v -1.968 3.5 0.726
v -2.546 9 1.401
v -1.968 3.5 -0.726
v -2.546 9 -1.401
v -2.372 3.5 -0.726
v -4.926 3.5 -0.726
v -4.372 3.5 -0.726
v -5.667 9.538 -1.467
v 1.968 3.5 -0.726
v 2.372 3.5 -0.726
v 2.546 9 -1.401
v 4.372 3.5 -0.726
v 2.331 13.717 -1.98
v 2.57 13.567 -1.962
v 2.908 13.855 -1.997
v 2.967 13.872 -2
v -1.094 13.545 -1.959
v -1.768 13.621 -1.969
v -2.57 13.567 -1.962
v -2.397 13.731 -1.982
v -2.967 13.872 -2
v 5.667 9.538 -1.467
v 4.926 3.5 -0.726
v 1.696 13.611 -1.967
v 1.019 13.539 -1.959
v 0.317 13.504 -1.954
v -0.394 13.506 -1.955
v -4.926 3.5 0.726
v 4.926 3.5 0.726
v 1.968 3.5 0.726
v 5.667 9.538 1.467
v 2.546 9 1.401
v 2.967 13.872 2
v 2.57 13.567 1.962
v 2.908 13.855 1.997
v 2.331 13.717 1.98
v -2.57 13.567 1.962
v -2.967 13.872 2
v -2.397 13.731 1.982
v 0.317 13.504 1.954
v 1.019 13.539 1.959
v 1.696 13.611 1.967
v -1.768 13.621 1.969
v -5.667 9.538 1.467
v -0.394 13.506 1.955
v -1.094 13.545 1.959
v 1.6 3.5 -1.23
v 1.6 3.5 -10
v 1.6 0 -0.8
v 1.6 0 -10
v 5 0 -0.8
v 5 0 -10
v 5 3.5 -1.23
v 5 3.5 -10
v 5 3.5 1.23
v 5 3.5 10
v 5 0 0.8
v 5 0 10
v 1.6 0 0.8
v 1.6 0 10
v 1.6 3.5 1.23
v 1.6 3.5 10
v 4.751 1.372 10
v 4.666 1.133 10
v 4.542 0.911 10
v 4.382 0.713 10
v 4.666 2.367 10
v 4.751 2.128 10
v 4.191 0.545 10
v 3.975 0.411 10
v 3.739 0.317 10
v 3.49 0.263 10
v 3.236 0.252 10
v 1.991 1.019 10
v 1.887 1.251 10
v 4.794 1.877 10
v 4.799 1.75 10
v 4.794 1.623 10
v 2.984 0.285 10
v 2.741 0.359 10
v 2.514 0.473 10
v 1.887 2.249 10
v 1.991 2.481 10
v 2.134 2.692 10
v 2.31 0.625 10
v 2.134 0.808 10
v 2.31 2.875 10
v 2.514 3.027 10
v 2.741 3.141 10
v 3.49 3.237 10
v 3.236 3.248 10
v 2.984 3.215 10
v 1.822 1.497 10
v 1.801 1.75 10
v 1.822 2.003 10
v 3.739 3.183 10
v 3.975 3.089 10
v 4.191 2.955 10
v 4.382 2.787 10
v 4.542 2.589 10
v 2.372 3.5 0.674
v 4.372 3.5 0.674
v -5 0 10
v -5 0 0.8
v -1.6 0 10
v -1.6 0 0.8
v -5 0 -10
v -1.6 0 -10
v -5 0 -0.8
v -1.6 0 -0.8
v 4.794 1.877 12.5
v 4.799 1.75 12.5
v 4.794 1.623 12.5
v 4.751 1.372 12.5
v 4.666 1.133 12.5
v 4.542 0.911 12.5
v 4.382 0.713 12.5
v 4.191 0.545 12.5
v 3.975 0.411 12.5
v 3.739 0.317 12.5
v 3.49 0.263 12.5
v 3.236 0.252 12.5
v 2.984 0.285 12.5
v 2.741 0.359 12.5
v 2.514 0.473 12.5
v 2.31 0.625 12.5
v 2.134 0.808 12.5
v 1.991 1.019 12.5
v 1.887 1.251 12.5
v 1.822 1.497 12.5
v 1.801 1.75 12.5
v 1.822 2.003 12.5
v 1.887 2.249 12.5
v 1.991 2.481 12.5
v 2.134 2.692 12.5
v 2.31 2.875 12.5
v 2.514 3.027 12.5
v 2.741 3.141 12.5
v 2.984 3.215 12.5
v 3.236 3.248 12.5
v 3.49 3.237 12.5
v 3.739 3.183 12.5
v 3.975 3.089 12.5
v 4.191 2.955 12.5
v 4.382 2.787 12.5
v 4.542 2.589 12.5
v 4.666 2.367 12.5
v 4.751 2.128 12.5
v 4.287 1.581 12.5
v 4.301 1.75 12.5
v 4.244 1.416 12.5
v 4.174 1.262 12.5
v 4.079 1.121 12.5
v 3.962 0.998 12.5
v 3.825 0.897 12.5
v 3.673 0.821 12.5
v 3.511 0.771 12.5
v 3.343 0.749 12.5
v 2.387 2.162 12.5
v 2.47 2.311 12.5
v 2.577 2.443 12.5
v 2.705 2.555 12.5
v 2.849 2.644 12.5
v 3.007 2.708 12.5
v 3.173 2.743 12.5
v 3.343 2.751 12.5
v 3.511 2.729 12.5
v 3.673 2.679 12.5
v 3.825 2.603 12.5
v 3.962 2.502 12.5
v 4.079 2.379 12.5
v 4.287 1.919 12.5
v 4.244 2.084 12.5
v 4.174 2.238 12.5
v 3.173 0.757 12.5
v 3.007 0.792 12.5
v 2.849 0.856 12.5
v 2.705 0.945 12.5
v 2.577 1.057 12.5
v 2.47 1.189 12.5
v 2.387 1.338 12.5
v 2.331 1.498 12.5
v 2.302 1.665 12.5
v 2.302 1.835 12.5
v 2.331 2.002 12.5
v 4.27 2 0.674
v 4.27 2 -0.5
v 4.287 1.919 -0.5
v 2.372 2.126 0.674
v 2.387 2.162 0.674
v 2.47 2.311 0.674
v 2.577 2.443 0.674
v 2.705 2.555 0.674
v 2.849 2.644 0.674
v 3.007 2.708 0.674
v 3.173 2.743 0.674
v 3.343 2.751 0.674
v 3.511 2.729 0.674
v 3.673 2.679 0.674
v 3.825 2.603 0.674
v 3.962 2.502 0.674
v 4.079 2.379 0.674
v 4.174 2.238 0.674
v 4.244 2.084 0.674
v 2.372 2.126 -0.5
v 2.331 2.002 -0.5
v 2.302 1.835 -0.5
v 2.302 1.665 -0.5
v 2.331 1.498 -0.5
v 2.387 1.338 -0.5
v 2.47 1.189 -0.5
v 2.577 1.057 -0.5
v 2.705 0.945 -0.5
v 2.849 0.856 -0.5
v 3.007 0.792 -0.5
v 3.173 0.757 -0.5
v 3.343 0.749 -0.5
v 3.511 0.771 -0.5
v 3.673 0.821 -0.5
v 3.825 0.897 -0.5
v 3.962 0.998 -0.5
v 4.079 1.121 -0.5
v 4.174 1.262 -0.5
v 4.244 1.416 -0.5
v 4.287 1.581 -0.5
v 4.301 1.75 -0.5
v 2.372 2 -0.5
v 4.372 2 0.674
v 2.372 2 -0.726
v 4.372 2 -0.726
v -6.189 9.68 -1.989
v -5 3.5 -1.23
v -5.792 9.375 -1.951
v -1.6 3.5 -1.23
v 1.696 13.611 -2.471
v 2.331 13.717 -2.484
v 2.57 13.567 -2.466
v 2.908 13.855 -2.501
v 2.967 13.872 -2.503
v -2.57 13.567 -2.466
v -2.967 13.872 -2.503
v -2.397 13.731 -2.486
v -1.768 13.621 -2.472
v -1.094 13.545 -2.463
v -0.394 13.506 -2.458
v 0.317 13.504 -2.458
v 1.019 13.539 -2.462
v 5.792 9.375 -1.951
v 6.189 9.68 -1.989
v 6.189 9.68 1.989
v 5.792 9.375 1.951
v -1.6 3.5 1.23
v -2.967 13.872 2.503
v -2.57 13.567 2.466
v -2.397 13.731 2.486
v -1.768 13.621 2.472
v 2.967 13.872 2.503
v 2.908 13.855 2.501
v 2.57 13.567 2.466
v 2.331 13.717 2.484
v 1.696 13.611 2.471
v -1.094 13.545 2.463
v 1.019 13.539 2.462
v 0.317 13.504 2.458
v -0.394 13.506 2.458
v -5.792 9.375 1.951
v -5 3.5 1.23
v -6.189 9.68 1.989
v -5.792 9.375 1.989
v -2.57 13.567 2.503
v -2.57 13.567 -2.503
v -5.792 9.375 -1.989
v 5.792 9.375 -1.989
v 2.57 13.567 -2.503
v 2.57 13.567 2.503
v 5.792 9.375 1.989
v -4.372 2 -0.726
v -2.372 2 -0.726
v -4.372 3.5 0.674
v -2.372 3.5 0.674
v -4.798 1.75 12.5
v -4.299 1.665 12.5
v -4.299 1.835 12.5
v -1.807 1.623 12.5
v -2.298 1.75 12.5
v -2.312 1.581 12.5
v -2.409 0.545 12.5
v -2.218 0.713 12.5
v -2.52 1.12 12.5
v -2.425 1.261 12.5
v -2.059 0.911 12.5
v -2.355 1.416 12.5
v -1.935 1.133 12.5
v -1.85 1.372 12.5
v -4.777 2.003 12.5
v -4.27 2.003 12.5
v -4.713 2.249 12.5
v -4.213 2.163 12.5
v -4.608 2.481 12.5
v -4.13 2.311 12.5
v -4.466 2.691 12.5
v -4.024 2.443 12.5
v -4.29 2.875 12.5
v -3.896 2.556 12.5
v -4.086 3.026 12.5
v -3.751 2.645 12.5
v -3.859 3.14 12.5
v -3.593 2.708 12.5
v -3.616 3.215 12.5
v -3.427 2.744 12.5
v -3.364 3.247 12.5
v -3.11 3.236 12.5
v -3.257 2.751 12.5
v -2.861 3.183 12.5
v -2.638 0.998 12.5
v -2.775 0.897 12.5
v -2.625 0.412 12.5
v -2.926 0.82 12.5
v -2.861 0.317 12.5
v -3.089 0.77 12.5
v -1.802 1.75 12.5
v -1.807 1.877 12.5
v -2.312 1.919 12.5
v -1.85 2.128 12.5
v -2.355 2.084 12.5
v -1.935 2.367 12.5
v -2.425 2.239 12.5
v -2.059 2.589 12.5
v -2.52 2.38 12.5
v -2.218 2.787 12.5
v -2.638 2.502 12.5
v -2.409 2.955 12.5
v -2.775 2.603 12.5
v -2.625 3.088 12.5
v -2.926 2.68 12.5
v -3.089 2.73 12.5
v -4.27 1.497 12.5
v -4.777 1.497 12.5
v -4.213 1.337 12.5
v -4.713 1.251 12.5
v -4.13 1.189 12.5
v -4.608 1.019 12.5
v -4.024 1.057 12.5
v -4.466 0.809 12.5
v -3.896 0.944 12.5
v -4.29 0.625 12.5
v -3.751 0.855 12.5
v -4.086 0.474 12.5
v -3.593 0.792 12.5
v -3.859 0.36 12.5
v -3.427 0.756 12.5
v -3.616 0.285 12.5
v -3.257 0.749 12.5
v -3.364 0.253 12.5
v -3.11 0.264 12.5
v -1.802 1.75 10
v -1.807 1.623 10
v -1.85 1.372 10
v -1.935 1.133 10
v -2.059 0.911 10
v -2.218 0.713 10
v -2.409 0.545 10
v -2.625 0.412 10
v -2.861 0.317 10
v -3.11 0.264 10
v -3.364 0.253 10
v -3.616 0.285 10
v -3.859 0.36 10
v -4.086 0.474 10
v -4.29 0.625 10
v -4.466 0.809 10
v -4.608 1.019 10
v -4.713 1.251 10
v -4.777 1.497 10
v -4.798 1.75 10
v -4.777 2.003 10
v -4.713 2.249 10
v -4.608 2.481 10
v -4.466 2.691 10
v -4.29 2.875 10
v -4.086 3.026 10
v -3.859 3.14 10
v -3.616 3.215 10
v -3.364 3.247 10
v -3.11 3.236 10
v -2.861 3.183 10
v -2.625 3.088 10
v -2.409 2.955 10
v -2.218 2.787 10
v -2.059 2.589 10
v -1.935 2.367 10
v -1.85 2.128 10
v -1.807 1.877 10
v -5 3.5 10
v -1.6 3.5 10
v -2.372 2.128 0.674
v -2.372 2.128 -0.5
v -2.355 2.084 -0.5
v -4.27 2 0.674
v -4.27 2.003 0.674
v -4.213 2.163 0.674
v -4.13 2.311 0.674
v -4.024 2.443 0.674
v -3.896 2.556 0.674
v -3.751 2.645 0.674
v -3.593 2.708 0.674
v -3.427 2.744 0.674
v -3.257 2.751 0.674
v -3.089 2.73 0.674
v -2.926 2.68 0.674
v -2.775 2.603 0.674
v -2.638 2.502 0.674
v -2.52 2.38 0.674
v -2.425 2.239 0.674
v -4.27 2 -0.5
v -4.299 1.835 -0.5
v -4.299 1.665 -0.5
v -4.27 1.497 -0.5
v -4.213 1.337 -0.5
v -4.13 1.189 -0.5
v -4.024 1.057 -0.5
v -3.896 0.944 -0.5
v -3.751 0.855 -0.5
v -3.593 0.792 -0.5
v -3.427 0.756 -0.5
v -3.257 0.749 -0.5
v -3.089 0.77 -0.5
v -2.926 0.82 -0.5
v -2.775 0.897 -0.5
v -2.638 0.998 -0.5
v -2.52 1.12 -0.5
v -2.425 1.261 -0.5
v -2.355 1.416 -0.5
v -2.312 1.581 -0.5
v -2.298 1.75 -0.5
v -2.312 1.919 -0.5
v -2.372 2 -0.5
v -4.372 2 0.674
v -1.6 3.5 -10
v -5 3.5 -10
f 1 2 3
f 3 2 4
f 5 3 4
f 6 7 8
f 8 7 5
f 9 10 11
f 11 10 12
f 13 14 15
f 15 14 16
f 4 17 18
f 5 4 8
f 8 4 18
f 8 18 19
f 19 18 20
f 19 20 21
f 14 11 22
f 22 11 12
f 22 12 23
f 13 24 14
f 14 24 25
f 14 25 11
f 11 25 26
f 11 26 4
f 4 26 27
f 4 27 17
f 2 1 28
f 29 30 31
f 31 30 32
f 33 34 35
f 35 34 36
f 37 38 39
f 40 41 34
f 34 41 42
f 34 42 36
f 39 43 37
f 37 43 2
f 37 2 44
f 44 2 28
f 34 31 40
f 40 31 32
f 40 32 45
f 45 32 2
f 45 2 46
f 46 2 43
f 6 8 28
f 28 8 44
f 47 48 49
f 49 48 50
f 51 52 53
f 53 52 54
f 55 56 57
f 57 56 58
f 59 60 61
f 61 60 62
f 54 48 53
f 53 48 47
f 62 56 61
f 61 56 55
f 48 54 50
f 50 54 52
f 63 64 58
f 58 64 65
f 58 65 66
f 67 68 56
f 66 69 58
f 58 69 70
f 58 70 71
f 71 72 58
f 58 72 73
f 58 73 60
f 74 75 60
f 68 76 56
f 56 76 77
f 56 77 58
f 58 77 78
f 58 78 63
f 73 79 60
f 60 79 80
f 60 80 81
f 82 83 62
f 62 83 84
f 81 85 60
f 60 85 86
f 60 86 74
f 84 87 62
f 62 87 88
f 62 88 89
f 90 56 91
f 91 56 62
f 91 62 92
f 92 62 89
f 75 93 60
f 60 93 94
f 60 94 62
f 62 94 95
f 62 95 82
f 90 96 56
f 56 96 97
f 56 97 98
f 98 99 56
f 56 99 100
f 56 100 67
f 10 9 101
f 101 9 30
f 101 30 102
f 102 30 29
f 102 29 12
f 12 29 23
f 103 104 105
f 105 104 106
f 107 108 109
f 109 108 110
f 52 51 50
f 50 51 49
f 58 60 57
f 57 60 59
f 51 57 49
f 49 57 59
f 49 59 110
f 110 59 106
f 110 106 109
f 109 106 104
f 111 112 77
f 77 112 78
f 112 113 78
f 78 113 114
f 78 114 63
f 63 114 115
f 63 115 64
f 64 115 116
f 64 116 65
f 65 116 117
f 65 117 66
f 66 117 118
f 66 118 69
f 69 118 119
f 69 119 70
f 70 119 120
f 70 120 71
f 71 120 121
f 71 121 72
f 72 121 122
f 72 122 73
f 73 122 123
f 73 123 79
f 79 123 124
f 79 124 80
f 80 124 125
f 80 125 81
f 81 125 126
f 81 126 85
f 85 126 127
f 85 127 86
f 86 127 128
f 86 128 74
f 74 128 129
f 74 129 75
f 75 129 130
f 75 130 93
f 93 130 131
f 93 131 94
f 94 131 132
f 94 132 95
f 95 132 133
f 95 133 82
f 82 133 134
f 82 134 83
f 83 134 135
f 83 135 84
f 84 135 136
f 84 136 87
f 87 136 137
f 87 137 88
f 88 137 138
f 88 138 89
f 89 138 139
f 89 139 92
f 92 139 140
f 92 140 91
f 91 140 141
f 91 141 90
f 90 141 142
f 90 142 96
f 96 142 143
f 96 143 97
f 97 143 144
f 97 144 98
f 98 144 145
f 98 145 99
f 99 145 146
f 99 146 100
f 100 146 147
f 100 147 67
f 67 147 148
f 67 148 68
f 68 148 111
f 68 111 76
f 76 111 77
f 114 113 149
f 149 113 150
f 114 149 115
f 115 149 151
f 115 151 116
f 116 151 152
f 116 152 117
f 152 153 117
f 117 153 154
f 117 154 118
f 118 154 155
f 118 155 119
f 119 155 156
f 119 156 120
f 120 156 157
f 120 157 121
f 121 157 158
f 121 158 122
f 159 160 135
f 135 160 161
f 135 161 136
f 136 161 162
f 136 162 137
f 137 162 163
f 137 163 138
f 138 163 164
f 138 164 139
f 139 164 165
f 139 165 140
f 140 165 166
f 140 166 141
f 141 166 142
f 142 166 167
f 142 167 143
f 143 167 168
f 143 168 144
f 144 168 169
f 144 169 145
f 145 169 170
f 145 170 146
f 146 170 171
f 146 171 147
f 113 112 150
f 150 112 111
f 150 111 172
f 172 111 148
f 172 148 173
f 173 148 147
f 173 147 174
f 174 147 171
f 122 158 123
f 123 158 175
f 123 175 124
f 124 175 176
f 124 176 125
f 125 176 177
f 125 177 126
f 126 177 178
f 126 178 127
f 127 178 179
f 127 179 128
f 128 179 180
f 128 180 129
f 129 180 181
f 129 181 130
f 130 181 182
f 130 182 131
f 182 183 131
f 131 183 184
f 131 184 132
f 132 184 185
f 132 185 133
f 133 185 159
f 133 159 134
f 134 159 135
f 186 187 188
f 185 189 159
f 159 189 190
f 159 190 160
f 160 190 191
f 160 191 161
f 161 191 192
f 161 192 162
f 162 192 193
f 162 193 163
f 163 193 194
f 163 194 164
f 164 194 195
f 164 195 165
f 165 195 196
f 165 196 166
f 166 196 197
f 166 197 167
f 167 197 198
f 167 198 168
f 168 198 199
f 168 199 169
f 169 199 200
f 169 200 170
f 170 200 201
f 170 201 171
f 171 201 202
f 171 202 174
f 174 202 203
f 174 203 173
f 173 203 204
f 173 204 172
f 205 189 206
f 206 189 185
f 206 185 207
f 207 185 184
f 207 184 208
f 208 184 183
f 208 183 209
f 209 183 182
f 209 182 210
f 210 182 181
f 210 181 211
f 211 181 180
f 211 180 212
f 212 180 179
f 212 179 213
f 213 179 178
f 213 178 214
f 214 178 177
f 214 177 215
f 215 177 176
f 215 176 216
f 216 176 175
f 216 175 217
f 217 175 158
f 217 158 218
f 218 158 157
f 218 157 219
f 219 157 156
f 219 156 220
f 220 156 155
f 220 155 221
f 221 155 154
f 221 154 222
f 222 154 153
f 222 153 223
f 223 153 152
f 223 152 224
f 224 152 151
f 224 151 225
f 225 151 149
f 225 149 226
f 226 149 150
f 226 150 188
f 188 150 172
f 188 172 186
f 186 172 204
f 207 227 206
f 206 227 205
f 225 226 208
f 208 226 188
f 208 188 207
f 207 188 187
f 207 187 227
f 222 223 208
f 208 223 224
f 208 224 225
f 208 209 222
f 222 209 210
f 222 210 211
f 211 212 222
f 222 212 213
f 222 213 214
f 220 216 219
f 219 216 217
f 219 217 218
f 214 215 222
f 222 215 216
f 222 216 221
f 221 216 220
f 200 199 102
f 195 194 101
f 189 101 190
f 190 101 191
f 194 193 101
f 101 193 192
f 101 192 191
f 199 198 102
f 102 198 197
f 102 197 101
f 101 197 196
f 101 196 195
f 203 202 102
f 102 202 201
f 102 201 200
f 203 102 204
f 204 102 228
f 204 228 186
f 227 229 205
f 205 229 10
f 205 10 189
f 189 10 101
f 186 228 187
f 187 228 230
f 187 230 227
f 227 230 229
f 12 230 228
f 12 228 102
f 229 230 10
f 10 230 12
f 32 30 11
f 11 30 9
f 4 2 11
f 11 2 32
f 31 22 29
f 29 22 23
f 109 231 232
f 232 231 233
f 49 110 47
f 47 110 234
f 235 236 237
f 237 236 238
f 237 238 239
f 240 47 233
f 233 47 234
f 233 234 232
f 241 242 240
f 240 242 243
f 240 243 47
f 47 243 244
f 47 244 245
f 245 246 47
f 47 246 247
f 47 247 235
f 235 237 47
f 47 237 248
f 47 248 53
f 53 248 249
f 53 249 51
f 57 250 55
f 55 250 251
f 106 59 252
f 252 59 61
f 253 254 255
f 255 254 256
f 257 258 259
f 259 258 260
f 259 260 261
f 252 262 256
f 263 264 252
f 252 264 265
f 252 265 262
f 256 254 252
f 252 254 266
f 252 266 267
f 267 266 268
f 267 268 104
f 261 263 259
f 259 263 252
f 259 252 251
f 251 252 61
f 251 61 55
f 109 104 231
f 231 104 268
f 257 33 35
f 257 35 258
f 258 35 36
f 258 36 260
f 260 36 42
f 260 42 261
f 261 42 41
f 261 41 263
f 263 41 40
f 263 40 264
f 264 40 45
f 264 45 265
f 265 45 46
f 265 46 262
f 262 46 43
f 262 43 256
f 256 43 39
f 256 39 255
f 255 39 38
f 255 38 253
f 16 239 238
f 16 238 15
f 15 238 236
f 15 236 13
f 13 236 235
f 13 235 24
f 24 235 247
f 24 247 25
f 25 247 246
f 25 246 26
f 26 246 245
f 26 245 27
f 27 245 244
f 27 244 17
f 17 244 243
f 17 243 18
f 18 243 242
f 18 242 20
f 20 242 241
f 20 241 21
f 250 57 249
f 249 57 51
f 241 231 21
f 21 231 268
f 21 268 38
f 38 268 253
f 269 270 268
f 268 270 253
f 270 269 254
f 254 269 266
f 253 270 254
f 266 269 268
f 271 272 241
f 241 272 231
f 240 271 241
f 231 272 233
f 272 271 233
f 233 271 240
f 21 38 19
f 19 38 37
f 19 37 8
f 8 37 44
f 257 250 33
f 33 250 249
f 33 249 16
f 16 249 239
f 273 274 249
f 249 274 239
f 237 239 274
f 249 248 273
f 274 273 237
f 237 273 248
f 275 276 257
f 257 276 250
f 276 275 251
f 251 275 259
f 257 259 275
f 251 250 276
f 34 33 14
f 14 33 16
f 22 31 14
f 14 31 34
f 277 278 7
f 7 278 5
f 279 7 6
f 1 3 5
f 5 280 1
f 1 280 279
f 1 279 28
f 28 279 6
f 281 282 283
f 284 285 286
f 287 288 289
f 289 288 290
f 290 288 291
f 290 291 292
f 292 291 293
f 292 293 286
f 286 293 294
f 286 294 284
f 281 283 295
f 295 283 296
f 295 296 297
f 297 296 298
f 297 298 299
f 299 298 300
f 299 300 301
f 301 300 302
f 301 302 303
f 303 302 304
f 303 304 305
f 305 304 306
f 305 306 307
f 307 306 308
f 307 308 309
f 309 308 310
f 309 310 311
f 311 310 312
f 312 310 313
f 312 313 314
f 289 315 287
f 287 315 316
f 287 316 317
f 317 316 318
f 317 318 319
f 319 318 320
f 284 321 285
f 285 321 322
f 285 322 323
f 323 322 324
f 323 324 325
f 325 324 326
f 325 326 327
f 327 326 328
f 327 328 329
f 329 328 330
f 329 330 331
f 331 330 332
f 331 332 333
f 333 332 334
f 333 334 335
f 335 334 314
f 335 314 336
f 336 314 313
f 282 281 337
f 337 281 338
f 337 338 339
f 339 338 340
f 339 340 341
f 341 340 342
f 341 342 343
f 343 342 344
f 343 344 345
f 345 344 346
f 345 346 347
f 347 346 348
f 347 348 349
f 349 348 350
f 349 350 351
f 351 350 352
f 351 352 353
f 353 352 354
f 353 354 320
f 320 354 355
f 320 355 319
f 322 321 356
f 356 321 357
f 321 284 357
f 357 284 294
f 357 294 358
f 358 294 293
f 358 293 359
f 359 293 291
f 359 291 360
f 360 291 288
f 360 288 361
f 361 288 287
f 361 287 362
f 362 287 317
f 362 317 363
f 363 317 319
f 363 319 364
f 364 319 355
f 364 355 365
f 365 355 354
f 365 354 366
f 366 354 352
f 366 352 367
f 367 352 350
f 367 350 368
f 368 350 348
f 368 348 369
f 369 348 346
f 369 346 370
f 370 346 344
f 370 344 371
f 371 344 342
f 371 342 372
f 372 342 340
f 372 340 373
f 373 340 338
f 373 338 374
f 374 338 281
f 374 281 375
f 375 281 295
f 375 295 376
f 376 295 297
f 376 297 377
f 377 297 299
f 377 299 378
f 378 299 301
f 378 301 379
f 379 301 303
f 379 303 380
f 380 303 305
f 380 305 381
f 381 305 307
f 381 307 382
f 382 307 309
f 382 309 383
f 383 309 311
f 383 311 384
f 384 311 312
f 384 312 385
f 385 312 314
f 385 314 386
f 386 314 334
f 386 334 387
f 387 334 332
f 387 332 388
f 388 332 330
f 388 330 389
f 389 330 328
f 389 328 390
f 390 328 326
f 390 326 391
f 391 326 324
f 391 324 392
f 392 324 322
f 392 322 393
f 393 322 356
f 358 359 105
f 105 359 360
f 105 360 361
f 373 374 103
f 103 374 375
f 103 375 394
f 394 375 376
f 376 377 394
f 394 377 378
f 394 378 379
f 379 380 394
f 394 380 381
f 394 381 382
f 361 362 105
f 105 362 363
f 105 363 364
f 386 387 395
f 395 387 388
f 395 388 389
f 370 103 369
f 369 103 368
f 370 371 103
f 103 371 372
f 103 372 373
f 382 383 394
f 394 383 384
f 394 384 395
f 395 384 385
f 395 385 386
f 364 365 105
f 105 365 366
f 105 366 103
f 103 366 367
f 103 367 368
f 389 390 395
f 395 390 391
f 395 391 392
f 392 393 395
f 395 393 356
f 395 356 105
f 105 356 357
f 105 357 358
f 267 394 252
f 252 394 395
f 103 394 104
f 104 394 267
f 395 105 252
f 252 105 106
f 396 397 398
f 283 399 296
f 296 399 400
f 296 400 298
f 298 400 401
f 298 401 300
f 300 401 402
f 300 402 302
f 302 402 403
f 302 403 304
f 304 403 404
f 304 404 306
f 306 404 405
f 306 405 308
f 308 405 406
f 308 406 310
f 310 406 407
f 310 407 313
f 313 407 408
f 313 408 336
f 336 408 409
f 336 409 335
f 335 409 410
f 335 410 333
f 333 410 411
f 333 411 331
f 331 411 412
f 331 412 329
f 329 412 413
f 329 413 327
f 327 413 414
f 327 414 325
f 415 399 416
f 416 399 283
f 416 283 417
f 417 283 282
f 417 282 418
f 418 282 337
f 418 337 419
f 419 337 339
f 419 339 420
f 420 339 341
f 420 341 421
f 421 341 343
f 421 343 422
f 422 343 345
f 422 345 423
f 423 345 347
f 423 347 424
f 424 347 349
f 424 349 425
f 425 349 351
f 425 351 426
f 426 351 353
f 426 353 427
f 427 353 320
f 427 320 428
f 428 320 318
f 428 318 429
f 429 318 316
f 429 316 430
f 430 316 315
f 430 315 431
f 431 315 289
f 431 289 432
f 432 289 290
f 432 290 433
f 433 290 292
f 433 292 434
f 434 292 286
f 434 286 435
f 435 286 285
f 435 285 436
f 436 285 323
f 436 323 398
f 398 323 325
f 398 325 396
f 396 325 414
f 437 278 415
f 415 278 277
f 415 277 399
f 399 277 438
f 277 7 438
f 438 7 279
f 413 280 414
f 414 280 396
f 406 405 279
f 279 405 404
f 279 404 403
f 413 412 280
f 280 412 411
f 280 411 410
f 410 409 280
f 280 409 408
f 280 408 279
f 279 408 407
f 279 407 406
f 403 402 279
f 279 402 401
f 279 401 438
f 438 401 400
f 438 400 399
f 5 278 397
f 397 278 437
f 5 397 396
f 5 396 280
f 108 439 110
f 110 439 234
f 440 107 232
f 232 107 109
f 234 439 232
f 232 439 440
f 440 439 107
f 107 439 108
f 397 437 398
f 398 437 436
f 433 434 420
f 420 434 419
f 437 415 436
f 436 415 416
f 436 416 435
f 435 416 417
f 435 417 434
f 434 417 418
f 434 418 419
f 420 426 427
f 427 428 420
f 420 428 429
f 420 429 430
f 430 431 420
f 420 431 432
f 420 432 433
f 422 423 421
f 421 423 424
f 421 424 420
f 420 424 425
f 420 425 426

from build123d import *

# Parameters (mm, degrees)
SKETCH1_W                = 10
SKETCH1_H                = 1.6
BOSS_EXTRUDE1_DEPTH      = 15
BOSS_EXTRUDE1_TAPER      = -7
SHELL1_T                 = -0.5
SKETCH6_W                = 3.4
SKETCH6_H                = 20
BOSS_EXTRUDE2_DEPTH      = 3.5
BOSS_EXTRUDE2_2_DEPTH    = 3.5
CUT_EXTRUDE11_DEPTH      = 10
CUT_EXTRUDE11_DEPTH_BACK = 10
SKETCH11_RX              = 4.5
SKETCH11_RY              = 1.5
CUT_EXTRUDE12_DEPTH      = 10
BOSS_EXTRUDE3_DEPTH      = 0.5
SKETCH20_R               = 1.499118307
BOSS_EXTRUDE4_DEPTH      = 2.5
SKETCH22_R               = 1.001403974
CUT_EXTRUDE13_DEPTH      = 13
SKETCH25_W               = 2
SKETCH25_H               = 1.4
CUT_EXTRUDE14_DEPTH      = 1.5
SKETCH28_R               = 1.498355692
BOSS_EXTRUDE5_DEPTH      = 2.5
SKETCH29_R               = 1.002174376
CUT_EXTRUDE15_DEPTH      = 13
SKETCH30_W               = 3.2
SKETCH30_H               = 1.6
BOSS_EXTRUDE6_DEPTH      = 9
BOSS_EXTRUDE6_TAPER      = -6


with BuildPart() as part:
    # Sketch1 → Boss-Extrude1 (new body)
    with BuildSketch(Plane(origin=(0, 0, 0), x_dir=(1, 0, 0), z_dir=(0, 1, 0))):
        Rectangle(SKETCH1_W, SKETCH1_H)
    extrude(amount=BOSS_EXTRUDE1_DEPTH, taper=BOSS_EXTRUDE1_TAPER)

    # Shell1
    shell1_openings = [part.faces().sort_by_distance(p)[0] for p in [
        (0, 15, 0),
    ]]
    offset(amount=SHELL1_T, openings=shell1_openings, kind=Kind.INTERSECTION)

    # Sketch11 → Cut-Extrude11 (cut, two sides: drawn at the far end of the back side and taken through both)
    with BuildSketch(Plane.XY.offset(-CUT_EXTRUDE11_DEPTH_BACK)):
        with Locations((0, 15)):
            Ellipse(SKETCH11_RX, SKETCH11_RY)
    extrude(amount=CUT_EXTRUDE11_DEPTH + CUT_EXTRUDE11_DEPTH_BACK, mode=Mode.SUBTRACT)

    # Sketch18 → Cut-Extrude12 (cut, symmetric)
    with BuildSketch(Plane.XY):
        Polygon((-2.966549011, 13.872092056), (-6.188554642, 9.680000756), (-6.937287507, 15.777940591), (-2.966549011, 15.777940591), align=None)
    cut_extrude12 = extrude(amount=CUT_EXTRUDE12_DEPTH, both=True, mode=Mode.SUBTRACT)

    # Sketch19 → Boss-Extrude3 (add)
    with BuildSketch(Plane(origin=(-8.567447802, 6.584867333, 0), x_dir=(0, 0, 1), z_dir=(-0.7928688844776028, 0.6093922644957365, 0))):
        Polygon((1.988554642, 3.903714074), (2.503278732, 9.190958134), (-2.503278732, 9.190958134), (-1.988554642, 3.903714074), align=None)
    boss_extrude3 = extrude(amount=-BOSS_EXTRUDE3_DEPTH)

    # Mirror2: Cut-Extrude12 across plane
    add(cut_extrude12.mirror(Plane(origin=(0, 0, 0), x_dir=(0, 0, 1), z_dir=(1, 0, 0))), mode=Mode.SUBTRACT)

    # Mirror3: Boss-Extrude3 across plane
    add(boss_extrude3.mirror(Plane(origin=(0, 0, 0), x_dir=(0, 0, 1), z_dir=(1, 0, 0))))


with BuildPart() as body_2:
    # Sketch6 → Boss-Extrude2 (new body)
    with BuildSketch(Plane.XZ):
        with Locations((-3.3, 0)):
            Rectangle(SKETCH6_W, SKETCH6_H)
    extrude(amount=-BOSS_EXTRUDE2_DEPTH)


with BuildPart() as body_3:
    # Sketch6 → Boss-Extrude2 2 (new body)
    with BuildSketch(Plane.XZ):
        with Locations((3.3, 0)):
            Rectangle(SKETCH6_W, SKETCH6_H)
    extrude(amount=-BOSS_EXTRUDE2_2_DEPTH)

    # Sketch20 → Boss-Extrude4 (add)
    with BuildSketch(Plane.XY.offset(10)):
        with Locations((3.3, 1.75)):
            Circle(SKETCH20_R)
    extrude(amount=BOSS_EXTRUDE4_DEPTH)


with BuildPart() as cut_extrude13_tool:
    # Sketch22 → Cut-Extrude13 (new body)
    with BuildSketch(Plane.XY.offset(12.5)):
        with Locations((3.3, 1.75)):
            Circle(SKETCH22_R)
    extrude(amount=-CUT_EXTRUDE13_DEPTH)


with BuildPart() as part_1:
    add(part.part)

    # Cut-Extrude13: cut by cut_extrude13_tool
    add(cut_extrude13_tool.part, mode=Mode.SUBTRACT)


with BuildPart() as body_3_1:
    add(body_3.part)

    # Cut-Extrude13: cut by cut_extrude13_tool
    add(cut_extrude13_tool.part, mode=Mode.SUBTRACT)


with BuildPart() as cut_extrude14_tool:
    # Sketch25 → Cut-Extrude14 (new body)
    with BuildSketch(Plane(origin=(0, 3.5, 0), x_dir=(1, 0, 0), z_dir=(0, 1, 0))):
        with Locations((-3.371950412, 0.026080252)):
            Rectangle(SKETCH25_W, SKETCH25_H)
    cut_extrude14 = extrude(amount=-CUT_EXTRUDE14_DEPTH)


with BuildPart() as part_2:
    add(part_1.part)

    # Cut-Extrude14: cut by cut_extrude14_tool
    add(cut_extrude14_tool.part, mode=Mode.SUBTRACT)


with BuildPart() as body_2_1:
    add(body_2.part)

    # Cut-Extrude14: cut by cut_extrude14_tool
    add(cut_extrude14_tool.part, mode=Mode.SUBTRACT)

    # Sketch28 → Boss-Extrude5 (add)
    with BuildSketch(Plane.XY.offset(10)):
        with Locations((-3.3, 1.75)):
            Circle(SKETCH28_R)
    extrude(amount=BOSS_EXTRUDE5_DEPTH)


with BuildPart() as mirror6_tool:
    # Mirror6: Cut-Extrude14 across plane
    add(cut_extrude14.mirror(Plane(origin=(0, 0, 0), x_dir=(0, 0, 1), z_dir=(1, 0, 0))))


with BuildPart() as part_3:
    add(part_2.part)

    # Mirror6: cut by mirror6_tool
    add(mirror6_tool.part, mode=Mode.SUBTRACT)


with BuildPart() as body_3_2:
    add(body_3_1.part)

    # Mirror6: cut by mirror6_tool
    add(mirror6_tool.part, mode=Mode.SUBTRACT)


with BuildPart() as cut_extrude15_tool:
    # Sketch29 → Cut-Extrude15 (new body)
    with BuildSketch(Plane.XY.offset(12.5)):
        with Locations((-3.3, 1.75)):
            Circle(SKETCH29_R)
    extrude(amount=-CUT_EXTRUDE15_DEPTH)


with BuildPart() as part_4:
    add(part_3.part)

    # Cut-Extrude15: cut by cut_extrude15_tool
    add(cut_extrude15_tool.part, mode=Mode.SUBTRACT)



with BuildPart() as body_2_2:
    add(body_2_1.part)

    # Cut-Extrude15: cut by cut_extrude15_tool
    add(cut_extrude15_tool.part, mode=Mode.SUBTRACT)


with BuildPart() as part_5:
    add(part_4.part)

    add(body_2_2.part)  # Boss-Extrude6 merges body 2

    add(body_3_2.part)  # Boss-Extrude6 merges body 3
    # Sketch30 → Boss-Extrude6 (add)
    with BuildSketch(Plane.XZ):
        Rectangle(SKETCH30_W, SKETCH30_H)
    extrude(amount=-BOSS_EXTRUDE6_DEPTH, taper=BOSS_EXTRUDE6_TAPER)


solid = part_5.part
